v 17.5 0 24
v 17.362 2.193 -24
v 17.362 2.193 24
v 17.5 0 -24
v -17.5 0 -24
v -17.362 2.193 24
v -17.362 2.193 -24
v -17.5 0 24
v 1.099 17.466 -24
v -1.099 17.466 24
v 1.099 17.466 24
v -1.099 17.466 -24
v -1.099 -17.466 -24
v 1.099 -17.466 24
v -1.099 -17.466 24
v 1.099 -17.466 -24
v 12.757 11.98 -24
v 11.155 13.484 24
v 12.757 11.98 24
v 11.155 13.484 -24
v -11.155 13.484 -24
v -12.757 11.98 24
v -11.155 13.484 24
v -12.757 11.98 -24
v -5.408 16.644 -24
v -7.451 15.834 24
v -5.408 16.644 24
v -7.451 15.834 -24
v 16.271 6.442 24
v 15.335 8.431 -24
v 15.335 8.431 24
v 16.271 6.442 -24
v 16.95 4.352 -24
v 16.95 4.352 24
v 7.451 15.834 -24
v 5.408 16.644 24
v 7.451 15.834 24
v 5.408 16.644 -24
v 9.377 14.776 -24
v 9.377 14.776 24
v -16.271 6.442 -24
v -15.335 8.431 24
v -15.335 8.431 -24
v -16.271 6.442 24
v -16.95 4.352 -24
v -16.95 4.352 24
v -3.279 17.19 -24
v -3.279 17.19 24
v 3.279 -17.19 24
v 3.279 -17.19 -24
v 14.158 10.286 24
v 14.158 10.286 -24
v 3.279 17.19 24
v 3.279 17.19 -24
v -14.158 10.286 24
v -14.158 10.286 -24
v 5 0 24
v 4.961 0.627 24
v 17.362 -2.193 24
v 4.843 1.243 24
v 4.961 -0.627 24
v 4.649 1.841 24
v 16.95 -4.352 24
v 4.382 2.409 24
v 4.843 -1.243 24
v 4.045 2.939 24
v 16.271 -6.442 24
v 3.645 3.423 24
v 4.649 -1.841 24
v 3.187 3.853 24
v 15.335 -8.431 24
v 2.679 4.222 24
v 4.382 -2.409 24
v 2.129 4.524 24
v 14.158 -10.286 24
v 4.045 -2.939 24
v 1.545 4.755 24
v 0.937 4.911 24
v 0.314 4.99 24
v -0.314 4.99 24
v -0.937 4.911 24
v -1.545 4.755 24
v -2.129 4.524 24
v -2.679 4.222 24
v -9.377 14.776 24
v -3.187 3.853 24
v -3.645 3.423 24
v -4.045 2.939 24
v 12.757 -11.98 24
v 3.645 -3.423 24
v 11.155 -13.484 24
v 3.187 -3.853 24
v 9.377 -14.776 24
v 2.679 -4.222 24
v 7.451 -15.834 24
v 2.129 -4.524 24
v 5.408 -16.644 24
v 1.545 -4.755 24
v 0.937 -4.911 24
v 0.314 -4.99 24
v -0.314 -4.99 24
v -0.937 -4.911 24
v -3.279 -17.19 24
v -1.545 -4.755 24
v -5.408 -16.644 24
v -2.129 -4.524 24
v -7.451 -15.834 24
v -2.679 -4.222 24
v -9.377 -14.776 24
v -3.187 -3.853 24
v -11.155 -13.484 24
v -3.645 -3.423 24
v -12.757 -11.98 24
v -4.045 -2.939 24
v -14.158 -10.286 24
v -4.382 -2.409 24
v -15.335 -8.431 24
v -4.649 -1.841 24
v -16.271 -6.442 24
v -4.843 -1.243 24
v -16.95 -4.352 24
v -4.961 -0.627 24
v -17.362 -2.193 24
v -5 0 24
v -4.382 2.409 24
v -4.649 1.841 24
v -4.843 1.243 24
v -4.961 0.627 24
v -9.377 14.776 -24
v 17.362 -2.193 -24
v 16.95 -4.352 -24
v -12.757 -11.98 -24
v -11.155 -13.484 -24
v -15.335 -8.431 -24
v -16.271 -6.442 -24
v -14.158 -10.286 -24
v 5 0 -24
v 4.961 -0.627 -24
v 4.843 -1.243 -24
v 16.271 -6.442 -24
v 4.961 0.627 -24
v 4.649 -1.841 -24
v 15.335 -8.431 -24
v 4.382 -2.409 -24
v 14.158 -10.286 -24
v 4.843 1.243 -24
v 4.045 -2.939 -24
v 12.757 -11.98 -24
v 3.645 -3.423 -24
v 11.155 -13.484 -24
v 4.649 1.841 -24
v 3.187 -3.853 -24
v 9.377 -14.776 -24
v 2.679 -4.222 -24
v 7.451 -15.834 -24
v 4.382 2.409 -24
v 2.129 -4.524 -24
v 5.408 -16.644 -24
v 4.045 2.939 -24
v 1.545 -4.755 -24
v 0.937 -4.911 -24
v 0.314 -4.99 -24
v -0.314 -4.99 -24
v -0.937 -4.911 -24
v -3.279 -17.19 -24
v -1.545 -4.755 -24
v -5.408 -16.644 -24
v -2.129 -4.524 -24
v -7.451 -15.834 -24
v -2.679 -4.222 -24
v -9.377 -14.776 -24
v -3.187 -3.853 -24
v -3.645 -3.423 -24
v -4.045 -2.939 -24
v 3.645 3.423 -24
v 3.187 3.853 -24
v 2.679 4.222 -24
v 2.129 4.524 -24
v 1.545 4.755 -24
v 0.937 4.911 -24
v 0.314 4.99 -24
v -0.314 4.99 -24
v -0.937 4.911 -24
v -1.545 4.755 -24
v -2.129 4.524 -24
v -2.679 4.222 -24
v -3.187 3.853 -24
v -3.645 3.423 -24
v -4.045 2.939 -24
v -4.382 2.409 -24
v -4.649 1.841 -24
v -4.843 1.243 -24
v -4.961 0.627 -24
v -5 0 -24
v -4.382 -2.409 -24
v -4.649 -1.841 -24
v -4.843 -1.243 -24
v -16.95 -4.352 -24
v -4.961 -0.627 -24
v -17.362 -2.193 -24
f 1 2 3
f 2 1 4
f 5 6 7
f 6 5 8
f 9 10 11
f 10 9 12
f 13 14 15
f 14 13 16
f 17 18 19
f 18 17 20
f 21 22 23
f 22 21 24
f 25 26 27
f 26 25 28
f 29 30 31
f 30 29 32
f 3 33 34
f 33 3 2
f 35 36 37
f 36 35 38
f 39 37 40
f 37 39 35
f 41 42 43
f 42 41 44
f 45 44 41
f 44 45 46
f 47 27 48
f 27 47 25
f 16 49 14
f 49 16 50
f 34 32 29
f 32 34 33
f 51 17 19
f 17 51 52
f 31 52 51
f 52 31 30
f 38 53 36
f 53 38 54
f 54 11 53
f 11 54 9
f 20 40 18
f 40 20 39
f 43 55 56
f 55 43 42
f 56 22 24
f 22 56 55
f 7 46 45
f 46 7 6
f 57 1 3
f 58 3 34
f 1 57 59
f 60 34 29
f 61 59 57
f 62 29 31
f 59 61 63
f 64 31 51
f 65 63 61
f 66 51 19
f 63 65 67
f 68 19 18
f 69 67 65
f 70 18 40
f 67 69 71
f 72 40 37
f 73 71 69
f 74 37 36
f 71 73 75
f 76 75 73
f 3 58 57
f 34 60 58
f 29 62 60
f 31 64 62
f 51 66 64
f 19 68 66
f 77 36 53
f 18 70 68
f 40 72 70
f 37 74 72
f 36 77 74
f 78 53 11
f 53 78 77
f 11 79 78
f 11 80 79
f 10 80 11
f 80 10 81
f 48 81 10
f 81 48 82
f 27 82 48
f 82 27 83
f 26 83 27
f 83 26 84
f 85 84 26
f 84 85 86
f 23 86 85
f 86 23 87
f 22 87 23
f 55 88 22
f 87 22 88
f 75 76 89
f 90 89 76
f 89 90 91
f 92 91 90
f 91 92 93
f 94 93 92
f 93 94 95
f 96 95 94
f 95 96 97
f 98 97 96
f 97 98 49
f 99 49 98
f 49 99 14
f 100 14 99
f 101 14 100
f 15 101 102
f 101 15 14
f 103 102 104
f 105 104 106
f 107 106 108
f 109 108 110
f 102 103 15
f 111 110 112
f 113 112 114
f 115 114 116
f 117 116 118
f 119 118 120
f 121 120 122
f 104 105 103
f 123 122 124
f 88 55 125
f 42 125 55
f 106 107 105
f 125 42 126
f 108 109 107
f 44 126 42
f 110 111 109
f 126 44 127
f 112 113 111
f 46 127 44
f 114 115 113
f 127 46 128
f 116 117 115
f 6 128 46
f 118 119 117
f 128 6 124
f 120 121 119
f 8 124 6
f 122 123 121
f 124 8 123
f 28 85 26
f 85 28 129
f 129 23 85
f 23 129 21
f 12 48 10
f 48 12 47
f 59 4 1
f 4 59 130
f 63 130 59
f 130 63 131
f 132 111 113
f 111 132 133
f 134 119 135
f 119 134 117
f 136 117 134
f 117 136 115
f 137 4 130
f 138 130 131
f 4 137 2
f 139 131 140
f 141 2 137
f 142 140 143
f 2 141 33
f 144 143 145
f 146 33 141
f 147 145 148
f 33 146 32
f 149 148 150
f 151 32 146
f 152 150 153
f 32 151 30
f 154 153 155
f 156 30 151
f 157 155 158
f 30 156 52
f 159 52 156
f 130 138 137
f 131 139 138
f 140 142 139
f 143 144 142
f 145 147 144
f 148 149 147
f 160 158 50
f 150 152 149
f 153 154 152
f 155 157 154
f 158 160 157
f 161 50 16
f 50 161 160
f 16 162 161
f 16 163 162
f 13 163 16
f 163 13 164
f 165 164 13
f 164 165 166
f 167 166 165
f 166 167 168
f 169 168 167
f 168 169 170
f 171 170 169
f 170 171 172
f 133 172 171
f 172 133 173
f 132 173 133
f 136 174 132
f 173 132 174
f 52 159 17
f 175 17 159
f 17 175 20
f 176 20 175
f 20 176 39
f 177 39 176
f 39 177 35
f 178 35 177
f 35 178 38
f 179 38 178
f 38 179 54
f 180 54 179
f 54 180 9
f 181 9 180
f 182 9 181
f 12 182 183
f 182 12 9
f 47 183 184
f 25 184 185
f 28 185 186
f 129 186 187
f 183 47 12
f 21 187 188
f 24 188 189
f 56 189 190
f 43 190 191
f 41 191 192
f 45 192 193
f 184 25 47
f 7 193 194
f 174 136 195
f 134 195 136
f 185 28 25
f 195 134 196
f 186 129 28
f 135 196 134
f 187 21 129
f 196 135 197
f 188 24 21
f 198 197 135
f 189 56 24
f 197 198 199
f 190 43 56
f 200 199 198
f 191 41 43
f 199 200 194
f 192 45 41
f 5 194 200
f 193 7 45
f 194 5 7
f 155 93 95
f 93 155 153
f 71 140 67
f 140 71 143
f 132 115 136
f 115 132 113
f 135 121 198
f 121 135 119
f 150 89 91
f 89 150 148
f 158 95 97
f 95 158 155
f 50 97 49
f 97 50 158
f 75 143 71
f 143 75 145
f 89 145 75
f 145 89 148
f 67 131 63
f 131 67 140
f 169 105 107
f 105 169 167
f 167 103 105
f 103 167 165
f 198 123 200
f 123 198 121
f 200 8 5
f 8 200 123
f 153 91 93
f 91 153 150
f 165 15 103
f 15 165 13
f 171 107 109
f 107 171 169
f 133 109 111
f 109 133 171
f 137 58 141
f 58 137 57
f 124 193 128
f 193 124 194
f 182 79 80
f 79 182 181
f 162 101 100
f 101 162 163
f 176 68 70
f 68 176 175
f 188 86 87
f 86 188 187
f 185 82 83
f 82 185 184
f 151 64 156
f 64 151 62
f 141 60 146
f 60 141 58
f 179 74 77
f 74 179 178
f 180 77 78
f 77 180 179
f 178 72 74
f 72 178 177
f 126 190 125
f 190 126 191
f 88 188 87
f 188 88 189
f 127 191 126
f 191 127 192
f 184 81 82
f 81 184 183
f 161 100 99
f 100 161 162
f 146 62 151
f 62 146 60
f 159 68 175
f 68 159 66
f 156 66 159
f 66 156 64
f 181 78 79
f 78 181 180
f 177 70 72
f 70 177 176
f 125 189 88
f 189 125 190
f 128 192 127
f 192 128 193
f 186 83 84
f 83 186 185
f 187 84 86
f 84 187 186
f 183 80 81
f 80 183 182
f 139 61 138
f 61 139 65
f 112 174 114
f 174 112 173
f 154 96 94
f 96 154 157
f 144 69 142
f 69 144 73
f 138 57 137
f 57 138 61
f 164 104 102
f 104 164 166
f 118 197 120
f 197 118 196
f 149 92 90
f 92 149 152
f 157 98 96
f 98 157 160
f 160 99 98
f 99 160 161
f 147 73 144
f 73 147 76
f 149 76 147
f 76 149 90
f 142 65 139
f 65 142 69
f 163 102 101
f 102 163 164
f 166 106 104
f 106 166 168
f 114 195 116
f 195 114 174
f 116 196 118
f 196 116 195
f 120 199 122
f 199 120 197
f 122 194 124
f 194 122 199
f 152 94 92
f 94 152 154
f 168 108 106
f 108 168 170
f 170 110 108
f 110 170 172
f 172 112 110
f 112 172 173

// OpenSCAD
$fn = 50;


difference() {
	union() {
		translate(v = [0, 0, -24.0000000000]) {
			cylinder(h = 48, r = 17.5000000000);
		}
	}
	union() {
		translate(v = [0, 0, -100.0000000000]) {
			cylinder(h = 200, r = 5);
		}
	}
}
